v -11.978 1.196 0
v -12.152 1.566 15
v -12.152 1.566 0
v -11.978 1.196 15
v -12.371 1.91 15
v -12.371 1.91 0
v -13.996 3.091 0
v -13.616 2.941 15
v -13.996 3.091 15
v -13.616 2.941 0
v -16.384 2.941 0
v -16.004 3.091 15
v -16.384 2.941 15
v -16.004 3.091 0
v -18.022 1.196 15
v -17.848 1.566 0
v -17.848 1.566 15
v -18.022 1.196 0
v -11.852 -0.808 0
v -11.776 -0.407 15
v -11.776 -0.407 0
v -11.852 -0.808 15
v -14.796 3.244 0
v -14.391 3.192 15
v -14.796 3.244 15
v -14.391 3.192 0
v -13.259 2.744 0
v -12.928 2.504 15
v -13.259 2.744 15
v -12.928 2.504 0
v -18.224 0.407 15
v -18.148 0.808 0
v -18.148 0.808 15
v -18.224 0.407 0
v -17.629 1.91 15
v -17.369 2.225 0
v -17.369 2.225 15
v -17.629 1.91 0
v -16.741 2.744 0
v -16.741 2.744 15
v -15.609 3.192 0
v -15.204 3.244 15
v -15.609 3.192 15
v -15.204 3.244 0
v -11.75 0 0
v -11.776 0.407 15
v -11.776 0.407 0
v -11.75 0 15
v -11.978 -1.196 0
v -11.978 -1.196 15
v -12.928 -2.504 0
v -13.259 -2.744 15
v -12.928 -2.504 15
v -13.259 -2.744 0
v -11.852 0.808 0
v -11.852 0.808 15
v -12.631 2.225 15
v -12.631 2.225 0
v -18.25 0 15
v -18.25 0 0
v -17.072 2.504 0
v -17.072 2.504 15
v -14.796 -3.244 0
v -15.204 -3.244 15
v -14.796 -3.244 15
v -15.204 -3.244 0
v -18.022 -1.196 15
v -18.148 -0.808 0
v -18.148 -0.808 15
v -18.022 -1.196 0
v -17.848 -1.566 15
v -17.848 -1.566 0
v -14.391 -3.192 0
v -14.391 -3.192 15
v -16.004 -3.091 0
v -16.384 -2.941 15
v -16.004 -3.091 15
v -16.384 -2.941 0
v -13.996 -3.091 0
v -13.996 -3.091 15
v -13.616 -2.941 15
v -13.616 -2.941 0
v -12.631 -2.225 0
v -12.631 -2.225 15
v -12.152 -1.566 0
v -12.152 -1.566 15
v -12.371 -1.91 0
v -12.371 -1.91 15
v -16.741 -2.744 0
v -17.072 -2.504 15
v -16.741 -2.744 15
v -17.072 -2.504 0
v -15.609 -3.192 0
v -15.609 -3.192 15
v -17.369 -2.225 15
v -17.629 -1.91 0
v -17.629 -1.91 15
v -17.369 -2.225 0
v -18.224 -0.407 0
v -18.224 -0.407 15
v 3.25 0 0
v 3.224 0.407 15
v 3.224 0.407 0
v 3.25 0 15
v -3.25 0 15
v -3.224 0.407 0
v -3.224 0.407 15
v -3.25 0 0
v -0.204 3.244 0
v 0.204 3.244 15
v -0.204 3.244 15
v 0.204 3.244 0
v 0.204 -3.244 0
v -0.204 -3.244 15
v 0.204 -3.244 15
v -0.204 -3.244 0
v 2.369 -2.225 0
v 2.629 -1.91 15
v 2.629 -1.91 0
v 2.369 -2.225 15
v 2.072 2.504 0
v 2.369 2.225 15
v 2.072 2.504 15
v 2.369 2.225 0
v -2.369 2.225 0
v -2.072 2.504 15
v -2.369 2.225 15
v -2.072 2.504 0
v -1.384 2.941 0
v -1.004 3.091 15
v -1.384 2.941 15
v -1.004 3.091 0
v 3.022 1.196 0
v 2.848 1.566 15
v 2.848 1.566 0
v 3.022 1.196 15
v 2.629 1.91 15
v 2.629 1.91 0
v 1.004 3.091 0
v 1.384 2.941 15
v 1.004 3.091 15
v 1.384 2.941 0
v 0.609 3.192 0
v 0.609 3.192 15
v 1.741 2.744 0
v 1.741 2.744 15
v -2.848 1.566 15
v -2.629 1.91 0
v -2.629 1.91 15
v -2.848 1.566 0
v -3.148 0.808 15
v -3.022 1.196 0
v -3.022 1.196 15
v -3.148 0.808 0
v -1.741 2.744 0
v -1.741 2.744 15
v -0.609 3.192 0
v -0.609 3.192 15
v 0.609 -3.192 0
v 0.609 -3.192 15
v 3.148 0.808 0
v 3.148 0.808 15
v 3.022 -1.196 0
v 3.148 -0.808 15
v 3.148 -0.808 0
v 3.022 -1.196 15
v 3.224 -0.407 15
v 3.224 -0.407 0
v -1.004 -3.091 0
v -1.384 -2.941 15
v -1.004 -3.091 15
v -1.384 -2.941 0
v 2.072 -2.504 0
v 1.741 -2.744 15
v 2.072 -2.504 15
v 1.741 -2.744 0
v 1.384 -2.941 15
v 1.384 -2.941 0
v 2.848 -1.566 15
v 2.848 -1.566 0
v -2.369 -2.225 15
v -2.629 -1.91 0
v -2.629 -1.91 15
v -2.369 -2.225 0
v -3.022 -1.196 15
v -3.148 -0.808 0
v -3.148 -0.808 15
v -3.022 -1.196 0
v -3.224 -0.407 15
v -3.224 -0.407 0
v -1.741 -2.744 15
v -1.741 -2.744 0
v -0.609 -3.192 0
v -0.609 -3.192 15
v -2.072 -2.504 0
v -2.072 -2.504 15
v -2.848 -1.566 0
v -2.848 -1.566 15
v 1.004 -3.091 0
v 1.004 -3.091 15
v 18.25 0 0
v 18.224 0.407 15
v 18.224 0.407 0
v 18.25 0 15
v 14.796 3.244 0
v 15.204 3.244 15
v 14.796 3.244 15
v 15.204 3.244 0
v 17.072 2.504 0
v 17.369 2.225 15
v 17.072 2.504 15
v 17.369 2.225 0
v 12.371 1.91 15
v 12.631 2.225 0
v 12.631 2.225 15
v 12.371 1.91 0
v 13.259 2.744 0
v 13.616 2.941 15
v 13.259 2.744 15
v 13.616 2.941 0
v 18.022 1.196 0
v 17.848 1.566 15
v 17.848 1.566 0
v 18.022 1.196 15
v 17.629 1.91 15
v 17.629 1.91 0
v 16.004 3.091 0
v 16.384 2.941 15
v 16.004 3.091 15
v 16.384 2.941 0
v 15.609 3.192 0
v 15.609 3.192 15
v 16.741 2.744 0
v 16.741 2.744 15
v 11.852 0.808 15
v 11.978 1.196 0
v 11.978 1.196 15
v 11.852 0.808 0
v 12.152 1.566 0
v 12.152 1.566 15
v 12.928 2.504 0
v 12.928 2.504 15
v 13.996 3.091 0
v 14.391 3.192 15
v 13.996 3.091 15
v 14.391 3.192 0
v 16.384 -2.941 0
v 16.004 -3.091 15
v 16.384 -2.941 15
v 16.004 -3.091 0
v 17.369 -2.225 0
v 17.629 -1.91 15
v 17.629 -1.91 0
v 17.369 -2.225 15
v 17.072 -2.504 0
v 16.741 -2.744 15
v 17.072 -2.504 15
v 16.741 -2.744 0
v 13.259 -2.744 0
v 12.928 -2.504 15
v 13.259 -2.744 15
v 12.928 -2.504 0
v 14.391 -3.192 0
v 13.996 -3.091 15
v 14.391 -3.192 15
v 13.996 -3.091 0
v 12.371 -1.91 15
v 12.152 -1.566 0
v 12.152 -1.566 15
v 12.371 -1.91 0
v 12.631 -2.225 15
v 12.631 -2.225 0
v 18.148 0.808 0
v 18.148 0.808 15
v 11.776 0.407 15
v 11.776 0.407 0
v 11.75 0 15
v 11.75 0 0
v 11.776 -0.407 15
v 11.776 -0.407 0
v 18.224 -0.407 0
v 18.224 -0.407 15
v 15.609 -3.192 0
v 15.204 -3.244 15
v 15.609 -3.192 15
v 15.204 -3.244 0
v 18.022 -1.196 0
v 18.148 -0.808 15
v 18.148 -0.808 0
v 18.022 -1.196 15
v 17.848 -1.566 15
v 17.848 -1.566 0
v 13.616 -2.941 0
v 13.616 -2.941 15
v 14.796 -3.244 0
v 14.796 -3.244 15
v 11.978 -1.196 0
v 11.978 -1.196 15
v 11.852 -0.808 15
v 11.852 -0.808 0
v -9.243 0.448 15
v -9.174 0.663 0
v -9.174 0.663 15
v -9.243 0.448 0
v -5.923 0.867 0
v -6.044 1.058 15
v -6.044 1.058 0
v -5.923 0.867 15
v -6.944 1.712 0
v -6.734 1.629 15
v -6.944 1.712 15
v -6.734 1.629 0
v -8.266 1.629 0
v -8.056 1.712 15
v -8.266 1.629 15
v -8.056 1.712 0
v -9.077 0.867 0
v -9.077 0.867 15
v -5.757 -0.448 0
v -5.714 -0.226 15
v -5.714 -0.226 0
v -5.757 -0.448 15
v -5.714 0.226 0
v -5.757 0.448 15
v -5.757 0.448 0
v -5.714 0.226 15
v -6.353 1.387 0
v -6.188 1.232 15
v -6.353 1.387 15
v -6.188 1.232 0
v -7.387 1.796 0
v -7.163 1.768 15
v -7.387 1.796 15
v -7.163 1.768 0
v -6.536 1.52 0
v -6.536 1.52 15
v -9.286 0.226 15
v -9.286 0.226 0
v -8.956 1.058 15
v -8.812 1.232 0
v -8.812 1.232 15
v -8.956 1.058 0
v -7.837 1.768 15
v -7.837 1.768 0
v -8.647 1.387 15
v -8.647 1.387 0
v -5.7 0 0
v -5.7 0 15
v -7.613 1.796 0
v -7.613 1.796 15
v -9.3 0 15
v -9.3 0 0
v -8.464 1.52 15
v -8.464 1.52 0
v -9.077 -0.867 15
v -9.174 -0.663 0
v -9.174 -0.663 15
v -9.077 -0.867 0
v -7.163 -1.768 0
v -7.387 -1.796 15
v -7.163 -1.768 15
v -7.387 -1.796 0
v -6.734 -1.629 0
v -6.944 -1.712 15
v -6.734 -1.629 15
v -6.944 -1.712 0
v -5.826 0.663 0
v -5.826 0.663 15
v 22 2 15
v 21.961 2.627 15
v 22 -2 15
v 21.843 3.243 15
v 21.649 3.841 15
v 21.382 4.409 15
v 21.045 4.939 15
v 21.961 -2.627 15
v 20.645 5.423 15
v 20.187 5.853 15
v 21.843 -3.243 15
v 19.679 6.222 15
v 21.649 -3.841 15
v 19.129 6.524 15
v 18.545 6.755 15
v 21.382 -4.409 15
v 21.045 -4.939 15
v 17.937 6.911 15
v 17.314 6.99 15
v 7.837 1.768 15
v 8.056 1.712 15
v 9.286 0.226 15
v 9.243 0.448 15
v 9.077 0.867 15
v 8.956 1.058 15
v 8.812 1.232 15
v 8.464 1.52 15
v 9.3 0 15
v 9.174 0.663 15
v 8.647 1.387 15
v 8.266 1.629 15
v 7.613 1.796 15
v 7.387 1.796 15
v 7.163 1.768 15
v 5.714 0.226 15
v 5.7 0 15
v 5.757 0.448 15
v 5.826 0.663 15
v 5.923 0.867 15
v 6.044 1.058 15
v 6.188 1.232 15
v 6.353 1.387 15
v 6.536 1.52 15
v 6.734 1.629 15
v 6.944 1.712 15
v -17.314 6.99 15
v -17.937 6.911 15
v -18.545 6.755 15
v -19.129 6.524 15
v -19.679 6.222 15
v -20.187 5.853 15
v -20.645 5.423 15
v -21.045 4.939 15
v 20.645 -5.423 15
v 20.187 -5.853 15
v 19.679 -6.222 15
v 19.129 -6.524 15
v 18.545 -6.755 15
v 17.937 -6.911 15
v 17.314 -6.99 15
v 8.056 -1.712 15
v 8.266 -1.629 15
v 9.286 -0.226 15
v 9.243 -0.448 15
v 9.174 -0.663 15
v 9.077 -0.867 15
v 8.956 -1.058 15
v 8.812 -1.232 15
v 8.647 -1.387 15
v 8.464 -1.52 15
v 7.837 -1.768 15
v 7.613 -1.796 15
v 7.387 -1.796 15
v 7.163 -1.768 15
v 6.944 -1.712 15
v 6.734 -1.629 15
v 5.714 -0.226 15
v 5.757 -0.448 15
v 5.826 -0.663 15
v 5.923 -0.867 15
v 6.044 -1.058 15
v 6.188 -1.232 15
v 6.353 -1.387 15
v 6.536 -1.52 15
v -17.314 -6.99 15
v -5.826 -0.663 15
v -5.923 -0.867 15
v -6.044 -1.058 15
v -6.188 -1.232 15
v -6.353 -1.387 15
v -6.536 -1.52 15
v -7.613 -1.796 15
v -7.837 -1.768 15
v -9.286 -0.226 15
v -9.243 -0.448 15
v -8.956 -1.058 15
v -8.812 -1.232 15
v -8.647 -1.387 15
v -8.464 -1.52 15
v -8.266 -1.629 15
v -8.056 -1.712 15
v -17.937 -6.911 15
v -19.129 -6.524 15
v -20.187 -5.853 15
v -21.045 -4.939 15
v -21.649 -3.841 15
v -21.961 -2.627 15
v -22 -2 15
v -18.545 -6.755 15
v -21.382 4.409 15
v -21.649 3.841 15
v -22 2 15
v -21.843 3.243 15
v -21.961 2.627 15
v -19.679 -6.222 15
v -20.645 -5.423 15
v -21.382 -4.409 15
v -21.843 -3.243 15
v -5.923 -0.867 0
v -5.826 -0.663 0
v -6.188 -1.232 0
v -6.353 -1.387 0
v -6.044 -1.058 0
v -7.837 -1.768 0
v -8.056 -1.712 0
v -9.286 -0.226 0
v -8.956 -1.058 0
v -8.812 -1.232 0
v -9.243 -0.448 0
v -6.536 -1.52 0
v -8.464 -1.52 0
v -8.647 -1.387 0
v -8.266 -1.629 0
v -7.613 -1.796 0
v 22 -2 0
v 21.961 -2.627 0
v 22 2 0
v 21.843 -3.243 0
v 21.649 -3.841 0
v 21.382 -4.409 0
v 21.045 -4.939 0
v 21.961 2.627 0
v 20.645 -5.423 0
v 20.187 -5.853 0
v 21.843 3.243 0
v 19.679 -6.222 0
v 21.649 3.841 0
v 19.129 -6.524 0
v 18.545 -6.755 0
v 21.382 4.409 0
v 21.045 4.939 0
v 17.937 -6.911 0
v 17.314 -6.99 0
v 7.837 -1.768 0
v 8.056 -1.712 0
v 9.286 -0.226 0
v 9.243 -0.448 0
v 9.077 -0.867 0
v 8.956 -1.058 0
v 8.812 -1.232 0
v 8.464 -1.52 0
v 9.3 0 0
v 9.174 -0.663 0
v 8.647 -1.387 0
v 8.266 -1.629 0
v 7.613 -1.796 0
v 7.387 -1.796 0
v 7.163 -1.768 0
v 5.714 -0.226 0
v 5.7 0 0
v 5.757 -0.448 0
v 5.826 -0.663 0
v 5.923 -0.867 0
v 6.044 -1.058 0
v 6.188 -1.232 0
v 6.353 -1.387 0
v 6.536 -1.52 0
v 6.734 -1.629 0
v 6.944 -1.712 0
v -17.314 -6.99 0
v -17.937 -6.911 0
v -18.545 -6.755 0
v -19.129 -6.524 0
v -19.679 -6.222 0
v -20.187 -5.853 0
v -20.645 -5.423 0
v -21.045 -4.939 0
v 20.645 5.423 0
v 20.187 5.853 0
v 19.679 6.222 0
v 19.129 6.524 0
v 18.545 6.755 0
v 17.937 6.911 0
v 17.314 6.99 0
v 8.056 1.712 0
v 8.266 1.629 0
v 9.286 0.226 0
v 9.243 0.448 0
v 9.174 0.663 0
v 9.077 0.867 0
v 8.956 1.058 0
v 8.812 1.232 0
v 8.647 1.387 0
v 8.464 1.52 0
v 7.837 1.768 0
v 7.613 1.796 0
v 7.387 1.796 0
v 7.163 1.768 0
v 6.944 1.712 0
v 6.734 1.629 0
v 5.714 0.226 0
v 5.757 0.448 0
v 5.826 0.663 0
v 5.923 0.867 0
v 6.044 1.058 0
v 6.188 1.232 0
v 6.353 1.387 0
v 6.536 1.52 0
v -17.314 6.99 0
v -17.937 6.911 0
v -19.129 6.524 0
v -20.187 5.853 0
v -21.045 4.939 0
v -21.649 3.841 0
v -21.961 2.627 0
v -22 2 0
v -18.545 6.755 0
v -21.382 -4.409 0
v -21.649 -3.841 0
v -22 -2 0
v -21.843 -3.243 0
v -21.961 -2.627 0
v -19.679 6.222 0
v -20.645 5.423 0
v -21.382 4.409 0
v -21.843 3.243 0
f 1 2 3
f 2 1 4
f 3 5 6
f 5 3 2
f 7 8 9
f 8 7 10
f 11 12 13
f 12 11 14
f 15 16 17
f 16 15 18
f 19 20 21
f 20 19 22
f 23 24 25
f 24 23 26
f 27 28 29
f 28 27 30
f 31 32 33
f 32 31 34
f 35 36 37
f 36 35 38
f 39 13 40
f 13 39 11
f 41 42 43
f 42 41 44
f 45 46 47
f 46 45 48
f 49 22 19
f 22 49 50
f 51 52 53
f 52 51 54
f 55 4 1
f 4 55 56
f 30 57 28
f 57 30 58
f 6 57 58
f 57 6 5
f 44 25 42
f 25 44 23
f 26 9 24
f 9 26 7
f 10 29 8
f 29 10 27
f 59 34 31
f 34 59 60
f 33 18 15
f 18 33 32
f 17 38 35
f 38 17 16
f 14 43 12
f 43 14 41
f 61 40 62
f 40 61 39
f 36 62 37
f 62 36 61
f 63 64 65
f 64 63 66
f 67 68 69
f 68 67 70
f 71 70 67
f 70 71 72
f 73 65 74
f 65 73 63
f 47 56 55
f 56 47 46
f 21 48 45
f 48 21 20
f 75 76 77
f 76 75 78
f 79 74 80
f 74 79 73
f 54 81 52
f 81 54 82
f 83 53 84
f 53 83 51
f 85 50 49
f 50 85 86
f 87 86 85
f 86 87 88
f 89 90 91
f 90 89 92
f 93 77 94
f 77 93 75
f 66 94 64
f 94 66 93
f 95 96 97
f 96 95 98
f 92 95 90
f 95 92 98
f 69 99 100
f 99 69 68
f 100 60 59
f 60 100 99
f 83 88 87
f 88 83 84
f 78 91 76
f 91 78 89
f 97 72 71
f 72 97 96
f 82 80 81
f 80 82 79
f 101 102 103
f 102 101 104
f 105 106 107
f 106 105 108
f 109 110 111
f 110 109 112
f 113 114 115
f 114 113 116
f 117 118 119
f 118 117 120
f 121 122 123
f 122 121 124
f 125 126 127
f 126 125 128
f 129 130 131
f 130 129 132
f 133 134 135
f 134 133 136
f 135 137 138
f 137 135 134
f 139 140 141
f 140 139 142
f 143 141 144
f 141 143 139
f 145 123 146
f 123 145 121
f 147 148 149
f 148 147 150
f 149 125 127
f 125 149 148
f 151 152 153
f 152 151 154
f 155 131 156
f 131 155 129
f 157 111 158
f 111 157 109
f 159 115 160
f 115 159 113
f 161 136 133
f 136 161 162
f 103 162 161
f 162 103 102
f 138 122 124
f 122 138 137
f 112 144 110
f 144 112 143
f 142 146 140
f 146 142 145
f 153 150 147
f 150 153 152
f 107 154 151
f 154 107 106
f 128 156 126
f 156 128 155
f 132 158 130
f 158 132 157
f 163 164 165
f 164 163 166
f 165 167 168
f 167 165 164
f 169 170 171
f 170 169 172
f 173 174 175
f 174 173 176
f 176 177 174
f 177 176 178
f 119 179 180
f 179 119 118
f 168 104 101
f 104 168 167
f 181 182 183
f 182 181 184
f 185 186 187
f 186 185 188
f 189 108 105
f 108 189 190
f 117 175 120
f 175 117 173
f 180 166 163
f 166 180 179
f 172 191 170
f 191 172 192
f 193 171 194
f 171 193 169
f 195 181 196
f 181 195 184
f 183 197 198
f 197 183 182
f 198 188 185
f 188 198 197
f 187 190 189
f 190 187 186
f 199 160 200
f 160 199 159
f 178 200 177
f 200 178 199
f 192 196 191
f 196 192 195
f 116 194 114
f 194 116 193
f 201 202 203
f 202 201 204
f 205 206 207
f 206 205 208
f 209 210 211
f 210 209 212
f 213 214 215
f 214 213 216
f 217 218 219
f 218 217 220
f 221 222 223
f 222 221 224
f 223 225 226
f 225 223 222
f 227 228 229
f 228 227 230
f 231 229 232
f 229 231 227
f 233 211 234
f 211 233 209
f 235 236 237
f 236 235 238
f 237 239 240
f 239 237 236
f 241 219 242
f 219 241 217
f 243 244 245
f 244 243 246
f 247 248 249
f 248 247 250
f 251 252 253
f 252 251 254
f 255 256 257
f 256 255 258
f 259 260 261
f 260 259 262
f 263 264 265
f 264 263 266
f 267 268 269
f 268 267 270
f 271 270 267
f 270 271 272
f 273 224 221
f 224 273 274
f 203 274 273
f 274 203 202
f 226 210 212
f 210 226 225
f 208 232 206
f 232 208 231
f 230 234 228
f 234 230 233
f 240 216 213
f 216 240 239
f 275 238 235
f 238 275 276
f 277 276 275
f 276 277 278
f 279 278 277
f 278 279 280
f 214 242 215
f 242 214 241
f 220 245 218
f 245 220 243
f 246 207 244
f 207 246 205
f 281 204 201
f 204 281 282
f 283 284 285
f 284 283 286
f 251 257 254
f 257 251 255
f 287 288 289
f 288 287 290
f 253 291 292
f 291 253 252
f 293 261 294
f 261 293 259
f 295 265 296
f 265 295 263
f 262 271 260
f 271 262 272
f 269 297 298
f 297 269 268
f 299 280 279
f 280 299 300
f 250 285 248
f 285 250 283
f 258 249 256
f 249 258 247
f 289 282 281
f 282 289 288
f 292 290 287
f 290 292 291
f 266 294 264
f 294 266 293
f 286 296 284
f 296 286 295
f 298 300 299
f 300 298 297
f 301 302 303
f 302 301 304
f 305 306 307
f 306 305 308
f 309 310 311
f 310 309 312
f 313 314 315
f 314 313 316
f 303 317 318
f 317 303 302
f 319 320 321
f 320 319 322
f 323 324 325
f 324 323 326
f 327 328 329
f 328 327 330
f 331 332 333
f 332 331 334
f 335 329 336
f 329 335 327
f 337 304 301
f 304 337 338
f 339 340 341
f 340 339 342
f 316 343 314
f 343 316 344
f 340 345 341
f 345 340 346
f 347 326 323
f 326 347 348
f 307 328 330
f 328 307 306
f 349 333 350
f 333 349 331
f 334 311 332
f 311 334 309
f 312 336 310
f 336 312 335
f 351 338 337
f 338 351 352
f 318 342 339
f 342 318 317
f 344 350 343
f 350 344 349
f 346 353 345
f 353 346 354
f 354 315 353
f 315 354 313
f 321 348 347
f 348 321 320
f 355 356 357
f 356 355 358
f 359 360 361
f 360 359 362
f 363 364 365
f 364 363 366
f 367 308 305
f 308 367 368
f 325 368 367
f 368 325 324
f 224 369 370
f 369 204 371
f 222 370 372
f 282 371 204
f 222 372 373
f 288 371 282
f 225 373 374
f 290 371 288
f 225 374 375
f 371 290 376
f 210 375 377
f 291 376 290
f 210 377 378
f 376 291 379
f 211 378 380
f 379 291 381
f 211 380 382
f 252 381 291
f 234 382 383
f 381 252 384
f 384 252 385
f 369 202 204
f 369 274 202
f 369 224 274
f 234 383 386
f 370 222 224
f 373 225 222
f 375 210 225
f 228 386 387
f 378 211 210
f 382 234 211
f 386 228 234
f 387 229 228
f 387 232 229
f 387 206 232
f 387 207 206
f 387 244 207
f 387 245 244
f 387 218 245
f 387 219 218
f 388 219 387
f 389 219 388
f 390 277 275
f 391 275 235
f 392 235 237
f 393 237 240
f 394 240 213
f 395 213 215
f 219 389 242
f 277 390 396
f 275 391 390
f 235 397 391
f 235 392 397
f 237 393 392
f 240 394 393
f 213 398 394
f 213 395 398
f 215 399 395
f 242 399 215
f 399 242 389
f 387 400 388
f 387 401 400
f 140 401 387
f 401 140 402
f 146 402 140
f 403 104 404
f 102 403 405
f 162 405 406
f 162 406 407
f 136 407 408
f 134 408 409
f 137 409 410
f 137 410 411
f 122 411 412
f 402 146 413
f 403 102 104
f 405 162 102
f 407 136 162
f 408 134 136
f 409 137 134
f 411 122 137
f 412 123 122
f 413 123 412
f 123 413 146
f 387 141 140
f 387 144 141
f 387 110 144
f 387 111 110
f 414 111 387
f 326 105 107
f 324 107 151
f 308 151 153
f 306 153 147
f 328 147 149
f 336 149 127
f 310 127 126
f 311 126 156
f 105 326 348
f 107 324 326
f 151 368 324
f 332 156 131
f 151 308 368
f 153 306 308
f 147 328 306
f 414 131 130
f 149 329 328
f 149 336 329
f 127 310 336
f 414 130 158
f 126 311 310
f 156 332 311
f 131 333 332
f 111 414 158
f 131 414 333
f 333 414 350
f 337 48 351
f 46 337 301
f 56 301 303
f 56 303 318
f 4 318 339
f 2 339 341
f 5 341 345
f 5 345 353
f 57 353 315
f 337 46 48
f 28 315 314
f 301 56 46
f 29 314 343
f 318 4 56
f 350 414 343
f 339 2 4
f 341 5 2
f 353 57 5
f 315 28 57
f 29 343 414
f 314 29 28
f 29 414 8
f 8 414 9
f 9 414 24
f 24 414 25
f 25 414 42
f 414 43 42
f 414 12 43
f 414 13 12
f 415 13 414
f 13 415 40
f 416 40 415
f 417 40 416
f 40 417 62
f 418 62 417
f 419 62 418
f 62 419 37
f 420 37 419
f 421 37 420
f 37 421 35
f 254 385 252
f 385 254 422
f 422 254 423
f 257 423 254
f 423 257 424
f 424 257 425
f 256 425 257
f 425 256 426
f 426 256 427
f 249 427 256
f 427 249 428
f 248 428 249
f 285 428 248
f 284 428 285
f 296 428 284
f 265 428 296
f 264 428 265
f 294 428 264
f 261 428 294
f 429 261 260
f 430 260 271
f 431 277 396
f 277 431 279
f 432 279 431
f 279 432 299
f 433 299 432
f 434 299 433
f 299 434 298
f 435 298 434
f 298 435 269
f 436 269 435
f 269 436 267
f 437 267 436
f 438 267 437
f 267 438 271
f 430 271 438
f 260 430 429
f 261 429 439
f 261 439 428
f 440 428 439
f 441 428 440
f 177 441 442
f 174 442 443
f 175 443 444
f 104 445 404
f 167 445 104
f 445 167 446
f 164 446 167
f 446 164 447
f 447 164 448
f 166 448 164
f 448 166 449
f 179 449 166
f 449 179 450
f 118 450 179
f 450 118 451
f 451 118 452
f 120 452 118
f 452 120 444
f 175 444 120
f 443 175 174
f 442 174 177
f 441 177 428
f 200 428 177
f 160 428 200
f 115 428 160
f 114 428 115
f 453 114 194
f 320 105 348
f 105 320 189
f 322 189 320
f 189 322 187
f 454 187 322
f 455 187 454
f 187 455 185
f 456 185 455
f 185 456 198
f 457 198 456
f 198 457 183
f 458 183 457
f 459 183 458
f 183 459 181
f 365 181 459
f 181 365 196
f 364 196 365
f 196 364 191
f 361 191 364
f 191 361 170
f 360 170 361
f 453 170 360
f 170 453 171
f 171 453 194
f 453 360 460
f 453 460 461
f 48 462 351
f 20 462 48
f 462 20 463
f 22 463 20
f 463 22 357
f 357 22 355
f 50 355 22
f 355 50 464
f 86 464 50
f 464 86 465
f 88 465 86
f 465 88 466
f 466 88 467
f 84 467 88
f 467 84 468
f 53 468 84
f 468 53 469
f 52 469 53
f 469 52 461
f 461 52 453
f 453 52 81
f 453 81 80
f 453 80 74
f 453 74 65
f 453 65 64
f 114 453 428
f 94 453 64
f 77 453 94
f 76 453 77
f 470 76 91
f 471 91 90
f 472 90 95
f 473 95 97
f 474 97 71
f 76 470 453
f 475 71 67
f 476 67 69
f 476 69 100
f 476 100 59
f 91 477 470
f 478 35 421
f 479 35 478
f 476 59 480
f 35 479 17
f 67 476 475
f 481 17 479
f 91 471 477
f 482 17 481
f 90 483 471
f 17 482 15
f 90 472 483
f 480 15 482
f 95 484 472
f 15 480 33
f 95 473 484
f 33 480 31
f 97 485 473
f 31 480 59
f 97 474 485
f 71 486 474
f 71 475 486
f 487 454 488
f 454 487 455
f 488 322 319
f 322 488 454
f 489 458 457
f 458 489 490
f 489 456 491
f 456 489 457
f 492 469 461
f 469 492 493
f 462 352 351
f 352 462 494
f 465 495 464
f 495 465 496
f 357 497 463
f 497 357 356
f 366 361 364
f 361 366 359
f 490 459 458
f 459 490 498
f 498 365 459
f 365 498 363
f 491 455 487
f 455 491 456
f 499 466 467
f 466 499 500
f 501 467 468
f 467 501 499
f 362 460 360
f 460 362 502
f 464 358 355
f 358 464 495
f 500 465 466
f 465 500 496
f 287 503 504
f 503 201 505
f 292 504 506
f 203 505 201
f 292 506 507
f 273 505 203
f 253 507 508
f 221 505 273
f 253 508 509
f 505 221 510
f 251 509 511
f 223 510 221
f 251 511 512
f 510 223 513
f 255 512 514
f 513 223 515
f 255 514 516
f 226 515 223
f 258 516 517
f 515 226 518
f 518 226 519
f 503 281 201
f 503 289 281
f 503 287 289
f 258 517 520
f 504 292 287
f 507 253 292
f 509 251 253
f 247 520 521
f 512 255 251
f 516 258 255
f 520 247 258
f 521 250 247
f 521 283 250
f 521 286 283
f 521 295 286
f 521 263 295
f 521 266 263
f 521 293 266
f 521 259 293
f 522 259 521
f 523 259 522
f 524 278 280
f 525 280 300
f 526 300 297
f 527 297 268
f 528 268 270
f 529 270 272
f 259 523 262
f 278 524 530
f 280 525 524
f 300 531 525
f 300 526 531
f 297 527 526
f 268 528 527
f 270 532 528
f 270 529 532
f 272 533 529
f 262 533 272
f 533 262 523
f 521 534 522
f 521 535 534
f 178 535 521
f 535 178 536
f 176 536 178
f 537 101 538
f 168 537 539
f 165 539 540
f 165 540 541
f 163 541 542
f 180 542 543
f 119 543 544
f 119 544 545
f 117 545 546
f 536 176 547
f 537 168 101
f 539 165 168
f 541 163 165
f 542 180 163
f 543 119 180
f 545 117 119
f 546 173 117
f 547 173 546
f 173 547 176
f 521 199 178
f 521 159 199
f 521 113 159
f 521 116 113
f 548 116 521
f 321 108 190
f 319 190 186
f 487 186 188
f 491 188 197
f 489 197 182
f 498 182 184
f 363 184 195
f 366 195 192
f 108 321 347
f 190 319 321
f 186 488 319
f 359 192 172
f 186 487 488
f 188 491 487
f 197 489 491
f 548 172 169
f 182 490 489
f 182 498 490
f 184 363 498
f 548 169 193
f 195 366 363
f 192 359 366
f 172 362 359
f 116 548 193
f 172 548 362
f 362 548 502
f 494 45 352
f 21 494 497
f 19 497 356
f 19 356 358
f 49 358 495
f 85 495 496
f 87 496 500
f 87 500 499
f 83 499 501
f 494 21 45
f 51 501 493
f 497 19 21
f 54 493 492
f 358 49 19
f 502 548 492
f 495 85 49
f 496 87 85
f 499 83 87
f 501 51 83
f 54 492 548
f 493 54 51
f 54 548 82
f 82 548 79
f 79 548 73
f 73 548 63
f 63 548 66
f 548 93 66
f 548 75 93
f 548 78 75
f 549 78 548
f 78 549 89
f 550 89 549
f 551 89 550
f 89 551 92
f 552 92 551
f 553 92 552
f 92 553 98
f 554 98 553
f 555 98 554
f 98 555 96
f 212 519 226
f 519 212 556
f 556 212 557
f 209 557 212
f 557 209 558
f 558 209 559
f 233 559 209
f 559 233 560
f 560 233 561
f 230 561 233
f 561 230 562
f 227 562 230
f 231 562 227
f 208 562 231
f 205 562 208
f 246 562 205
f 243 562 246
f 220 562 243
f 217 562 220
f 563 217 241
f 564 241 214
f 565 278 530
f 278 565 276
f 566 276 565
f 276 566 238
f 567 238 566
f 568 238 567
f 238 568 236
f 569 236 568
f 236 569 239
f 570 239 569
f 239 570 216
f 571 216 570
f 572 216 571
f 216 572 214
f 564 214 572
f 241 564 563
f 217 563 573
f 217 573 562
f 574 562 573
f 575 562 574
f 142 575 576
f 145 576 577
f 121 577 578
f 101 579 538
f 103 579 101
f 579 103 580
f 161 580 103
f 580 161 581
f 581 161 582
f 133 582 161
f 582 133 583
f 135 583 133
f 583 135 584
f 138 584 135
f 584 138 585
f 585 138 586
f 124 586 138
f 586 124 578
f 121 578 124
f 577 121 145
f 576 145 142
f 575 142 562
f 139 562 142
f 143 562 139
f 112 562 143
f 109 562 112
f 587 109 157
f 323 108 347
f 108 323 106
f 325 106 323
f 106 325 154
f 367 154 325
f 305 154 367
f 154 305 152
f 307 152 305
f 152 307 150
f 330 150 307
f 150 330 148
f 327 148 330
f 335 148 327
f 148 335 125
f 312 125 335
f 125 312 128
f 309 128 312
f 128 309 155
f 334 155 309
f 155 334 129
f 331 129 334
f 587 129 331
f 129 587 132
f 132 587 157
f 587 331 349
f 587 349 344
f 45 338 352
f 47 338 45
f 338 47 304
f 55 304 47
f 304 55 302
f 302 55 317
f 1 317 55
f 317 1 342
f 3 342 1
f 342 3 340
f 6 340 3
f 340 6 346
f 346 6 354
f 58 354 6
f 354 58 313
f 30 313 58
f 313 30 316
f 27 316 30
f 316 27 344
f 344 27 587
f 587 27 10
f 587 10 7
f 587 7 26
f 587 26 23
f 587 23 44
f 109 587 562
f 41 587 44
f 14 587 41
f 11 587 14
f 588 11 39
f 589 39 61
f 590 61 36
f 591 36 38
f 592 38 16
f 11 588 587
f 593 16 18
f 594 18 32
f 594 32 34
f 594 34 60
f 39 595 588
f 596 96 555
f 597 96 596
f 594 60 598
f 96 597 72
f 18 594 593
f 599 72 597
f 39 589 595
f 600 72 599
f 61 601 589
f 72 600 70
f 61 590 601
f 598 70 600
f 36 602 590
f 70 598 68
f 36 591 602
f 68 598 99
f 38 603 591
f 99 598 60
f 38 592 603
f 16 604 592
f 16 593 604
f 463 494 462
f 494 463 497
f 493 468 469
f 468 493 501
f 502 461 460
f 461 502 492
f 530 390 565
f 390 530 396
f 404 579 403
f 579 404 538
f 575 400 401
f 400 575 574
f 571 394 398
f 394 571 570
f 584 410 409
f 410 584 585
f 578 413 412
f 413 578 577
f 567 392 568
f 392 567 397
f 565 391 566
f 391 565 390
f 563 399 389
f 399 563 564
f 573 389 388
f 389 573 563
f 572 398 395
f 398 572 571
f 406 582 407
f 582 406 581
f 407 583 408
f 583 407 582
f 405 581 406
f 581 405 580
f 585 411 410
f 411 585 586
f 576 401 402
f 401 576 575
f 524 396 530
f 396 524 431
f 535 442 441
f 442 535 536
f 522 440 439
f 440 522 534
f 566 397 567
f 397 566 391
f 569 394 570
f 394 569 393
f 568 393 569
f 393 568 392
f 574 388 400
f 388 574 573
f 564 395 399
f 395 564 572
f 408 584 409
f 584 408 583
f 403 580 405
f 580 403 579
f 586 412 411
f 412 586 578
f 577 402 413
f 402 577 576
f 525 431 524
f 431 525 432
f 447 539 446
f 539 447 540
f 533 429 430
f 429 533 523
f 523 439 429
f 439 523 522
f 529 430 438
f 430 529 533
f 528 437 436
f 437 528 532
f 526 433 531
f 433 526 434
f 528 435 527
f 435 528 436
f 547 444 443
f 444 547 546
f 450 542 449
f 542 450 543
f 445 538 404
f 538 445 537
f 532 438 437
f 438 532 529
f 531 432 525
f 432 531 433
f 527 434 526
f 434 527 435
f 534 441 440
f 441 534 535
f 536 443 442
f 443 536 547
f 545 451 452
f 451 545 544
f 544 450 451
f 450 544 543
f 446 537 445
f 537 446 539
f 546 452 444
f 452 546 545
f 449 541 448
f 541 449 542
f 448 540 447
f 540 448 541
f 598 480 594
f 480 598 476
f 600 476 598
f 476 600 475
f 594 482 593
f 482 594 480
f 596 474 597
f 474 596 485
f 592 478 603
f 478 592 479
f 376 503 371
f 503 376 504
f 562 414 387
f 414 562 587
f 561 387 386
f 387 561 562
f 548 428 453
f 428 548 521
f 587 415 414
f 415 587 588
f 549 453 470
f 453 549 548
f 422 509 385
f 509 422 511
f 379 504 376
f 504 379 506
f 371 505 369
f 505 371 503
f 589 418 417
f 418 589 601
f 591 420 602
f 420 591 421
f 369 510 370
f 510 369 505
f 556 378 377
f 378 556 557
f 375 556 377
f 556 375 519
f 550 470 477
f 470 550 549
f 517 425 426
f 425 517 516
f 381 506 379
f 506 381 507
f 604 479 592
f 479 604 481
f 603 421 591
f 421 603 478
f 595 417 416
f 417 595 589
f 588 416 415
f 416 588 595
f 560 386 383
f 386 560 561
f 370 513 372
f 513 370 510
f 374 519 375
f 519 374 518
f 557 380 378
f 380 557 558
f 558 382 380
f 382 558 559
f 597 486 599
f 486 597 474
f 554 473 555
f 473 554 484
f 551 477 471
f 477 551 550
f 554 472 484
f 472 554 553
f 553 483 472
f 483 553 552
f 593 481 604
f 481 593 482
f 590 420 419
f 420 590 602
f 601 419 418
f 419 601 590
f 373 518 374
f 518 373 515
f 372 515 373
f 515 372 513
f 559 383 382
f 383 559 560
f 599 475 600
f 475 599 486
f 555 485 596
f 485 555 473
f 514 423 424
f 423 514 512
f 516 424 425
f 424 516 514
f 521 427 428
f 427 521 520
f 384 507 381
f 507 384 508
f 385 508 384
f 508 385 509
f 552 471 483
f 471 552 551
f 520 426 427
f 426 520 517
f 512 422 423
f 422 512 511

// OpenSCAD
$fn = 50;


difference() {
	union() {
		hull() {
			translate(v = [-17.0000000000, 2.0000000000, 0]) {
				cylinder(h = 15, r = 5);
			}
			translate(v = [17.0000000000, 2.0000000000, 0]) {
				cylinder(h = 15, r = 5);
			}
			translate(v = [-17.0000000000, -2.0000000000, 0]) {
				cylinder(h = 15, r = 5);
			}
			translate(v = [17.0000000000, -2.0000000000, 0]) {
				cylinder(h = 15, r = 5);
			}
		}
	}
	union() {
		translate(v = [-15.0000000000, 0.0000000000, -100.0000000000]) {
			cylinder(h = 200, r = 3.2500000000);
		}
		translate(v = [0.0000000000, 0.0000000000, -100.0000000000]) {
			cylinder(h = 200, r = 3.2500000000);
		}
		translate(v = [15.0000000000, 0.0000000000, -100.0000000000]) {
			cylinder(h = 200, r = 3.2500000000);
		}
		translate(v = [-15.0000000000, 0.0000000000, 0]) {
			cylinder(h = 15, r = 1.8000000000);
		}
		translate(v = [-7.5000000000, 0.0000000000, 0]) {
			cylinder(h = 15, r = 1.8000000000);
		}
		cylinder(h = 15, r = 1.8000000000);
		translate(v = [7.5000000000, 0.0000000000, 0]) {
			cylinder(h = 15, r = 1.8000000000);
		}
		translate(v = [15.0000000000, 0.0000000000, 0]) {
			cylinder(h = 15, r = 1.8000000000);
		}
		translate(v = [-15.0000000000, 0.0000000000, 0]) {
			cylinder(h = 15, r = 1.8000000000);
		}
		translate(v = [-7.5000000000, 0.0000000000, 0]) {
			cylinder(h = 15, r = 1.8000000000);
		}
		cylinder(h = 15, r = 1.8000000000);
		translate(v = [7.5000000000, 0.0000000000, 0]) {
			cylinder(h = 15, r = 1.8000000000);
		}
		translate(v = [15.0000000000, 0.0000000000, 0]) {
			cylinder(h = 15, r = 1.8000000000);
		}
		translate(v = [-15.0000000000, 0.0000000000, 0]) {
			cylinder(h = 15, r = 1.8000000000);
		}
		translate(v = [-7.5000000000, 0.0000000000, 0]) {
			cylinder(h = 15, r = 1.8000000000);
		}
		cylinder(h = 15, r = 1.8000000000);
		translate(v = [7.5000000000, 0.0000000000, 0]) {
			cylinder(h = 15, r = 1.8000000000);
		}
		translate(v = [15.0000000000, 0.0000000000, 0]) {
			cylinder(h = 15, r = 1.8000000000);
		}
	}
}
